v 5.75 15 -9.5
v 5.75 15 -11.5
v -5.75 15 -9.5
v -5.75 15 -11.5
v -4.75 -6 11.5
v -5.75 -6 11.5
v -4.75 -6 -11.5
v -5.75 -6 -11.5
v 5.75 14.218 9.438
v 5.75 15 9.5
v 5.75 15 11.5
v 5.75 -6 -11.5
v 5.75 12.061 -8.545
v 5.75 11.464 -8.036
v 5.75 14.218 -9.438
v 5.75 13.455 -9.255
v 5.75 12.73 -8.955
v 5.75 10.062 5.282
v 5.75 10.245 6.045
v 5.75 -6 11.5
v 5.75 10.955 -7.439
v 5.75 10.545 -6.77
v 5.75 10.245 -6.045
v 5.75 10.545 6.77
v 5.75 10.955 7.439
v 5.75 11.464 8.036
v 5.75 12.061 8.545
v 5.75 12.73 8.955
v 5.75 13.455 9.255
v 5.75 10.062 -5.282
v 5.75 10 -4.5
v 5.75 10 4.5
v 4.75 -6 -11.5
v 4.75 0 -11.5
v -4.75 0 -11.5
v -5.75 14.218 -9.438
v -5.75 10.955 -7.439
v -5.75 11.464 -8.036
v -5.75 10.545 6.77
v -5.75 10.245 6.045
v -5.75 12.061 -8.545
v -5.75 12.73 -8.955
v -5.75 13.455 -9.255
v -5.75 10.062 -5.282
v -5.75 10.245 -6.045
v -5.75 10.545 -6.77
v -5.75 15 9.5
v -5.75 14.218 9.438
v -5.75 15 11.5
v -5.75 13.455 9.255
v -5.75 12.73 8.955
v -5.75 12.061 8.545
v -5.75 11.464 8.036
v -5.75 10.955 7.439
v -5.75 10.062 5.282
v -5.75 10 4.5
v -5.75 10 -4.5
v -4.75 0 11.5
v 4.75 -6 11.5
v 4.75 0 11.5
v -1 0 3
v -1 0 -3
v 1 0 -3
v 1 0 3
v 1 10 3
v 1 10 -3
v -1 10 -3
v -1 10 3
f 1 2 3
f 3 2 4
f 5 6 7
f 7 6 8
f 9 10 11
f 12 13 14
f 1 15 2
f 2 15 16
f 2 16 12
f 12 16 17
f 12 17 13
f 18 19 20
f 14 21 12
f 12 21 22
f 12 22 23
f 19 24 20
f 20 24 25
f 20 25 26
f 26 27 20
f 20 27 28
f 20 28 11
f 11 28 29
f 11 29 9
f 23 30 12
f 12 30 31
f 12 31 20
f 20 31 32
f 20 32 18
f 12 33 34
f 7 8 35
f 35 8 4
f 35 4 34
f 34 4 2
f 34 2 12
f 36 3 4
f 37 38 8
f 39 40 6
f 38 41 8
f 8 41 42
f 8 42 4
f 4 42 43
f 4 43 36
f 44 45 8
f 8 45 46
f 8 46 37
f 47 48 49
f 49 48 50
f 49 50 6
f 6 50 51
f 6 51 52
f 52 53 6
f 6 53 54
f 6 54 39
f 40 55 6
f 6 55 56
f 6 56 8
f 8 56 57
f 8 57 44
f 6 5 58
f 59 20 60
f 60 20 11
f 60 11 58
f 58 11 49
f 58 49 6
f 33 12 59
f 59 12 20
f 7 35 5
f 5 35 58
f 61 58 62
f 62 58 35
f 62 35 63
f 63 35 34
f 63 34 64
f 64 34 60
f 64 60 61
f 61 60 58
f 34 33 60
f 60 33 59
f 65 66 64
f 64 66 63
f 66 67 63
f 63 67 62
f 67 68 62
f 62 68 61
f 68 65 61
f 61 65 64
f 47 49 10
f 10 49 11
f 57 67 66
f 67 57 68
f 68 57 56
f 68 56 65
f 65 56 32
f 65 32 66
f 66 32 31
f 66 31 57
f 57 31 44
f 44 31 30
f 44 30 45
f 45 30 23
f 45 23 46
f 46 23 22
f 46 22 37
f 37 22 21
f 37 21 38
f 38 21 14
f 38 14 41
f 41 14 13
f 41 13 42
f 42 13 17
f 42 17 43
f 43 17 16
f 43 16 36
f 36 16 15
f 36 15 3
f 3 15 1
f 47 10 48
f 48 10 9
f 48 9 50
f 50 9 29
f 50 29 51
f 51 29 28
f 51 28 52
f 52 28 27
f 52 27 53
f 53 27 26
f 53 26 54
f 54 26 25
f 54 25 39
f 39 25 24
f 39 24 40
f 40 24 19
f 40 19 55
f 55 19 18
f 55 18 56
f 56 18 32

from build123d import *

# Parameters (mm, degrees)
SKETCH1_W           = 11.5
SKETCH1_H           = 23
BOSS_EXTRUDE1_DEPTH = 11
SKETCH3_W           = 11.5
SKETCH3_H           = 23
BOSS_EXTRUDE3_DEPTH = 6
SKETCH4_W           = 9.5
SKETCH4_H           = 6
CUT_EXTRUDE1_DEPTH  = 27.135464411
SKETCH7_W           = 2
SKETCH7_H           = 6
CUT_EXTRUDE2_DEPTH  = 10
SKETCH8_W           = 11.5
SKETCH8_H           = 23
BOSS_EXTRUDE4_DEPTH = 4
SKETCH9_W           = 19
SKETCH9_H           = 5
CUT_EXTRUDE3_DEPTH  = 23.12464689
FILLET1_R           = 5


with BuildPart() as part:
    # Sketch1 → Boss-Extrude1 (new body)
    with BuildSketch(Plane(origin=(0, 0, 0), x_dir=(1, 0, 0), z_dir=(0, 1, 0))):
        Rectangle(SKETCH1_W, SKETCH1_H)
    extrude(amount=BOSS_EXTRUDE1_DEPTH)

    # Sketch3 → Boss-Extrude3 (add)
    with BuildSketch(Plane.XZ):
        Rectangle(SKETCH3_W, SKETCH3_H)
    extrude(amount=BOSS_EXTRUDE3_DEPTH)

    # Sketch4 → Cut-Extrude1 (cut, through all)
    with BuildSketch(Plane.XY.offset(11.5)):
        with Locations((0, -3)):
            Rectangle(SKETCH4_W, SKETCH4_H)
    extrude(amount=-CUT_EXTRUDE1_DEPTH, mode=Mode.SUBTRACT)

    # Sketch7 → Cut-Extrude2 (cut)
    with BuildSketch(Plane.XZ):
        Rectangle(SKETCH7_W, SKETCH7_H)
    extrude(amount=-CUT_EXTRUDE2_DEPTH, mode=Mode.SUBTRACT)

    # Sketch8 → Boss-Extrude4 (add)
    with BuildSketch(Plane(origin=(0, 11, 0), x_dir=(1, 0, 0), z_dir=(0, 1, 0))):
        Rectangle(SKETCH8_W, SKETCH8_H)
    extrude(amount=BOSS_EXTRUDE4_DEPTH)

    # Sketch9 → Cut-Extrude3 (cut, through all)
    with BuildSketch(Plane.ZY.offset(5.75)):
        with Locations((0, 12.5)):
            Rectangle(SKETCH9_W, SKETCH9_H)
    extrude(amount=-CUT_EXTRUDE3_DEPTH, mode=Mode.SUBTRACT)

    # Fillet1
    fillet1_edges = [part.edges().sort_by_distance(p)[0] for p in [
        (0, 10, -9.5),
        (0, 10, 9.5),
    ]]
    fillet(fillet1_edges, radius=FILLET1_R - 0.0001)  # a hair under: the kernel refuses the full size


solid = part.part
